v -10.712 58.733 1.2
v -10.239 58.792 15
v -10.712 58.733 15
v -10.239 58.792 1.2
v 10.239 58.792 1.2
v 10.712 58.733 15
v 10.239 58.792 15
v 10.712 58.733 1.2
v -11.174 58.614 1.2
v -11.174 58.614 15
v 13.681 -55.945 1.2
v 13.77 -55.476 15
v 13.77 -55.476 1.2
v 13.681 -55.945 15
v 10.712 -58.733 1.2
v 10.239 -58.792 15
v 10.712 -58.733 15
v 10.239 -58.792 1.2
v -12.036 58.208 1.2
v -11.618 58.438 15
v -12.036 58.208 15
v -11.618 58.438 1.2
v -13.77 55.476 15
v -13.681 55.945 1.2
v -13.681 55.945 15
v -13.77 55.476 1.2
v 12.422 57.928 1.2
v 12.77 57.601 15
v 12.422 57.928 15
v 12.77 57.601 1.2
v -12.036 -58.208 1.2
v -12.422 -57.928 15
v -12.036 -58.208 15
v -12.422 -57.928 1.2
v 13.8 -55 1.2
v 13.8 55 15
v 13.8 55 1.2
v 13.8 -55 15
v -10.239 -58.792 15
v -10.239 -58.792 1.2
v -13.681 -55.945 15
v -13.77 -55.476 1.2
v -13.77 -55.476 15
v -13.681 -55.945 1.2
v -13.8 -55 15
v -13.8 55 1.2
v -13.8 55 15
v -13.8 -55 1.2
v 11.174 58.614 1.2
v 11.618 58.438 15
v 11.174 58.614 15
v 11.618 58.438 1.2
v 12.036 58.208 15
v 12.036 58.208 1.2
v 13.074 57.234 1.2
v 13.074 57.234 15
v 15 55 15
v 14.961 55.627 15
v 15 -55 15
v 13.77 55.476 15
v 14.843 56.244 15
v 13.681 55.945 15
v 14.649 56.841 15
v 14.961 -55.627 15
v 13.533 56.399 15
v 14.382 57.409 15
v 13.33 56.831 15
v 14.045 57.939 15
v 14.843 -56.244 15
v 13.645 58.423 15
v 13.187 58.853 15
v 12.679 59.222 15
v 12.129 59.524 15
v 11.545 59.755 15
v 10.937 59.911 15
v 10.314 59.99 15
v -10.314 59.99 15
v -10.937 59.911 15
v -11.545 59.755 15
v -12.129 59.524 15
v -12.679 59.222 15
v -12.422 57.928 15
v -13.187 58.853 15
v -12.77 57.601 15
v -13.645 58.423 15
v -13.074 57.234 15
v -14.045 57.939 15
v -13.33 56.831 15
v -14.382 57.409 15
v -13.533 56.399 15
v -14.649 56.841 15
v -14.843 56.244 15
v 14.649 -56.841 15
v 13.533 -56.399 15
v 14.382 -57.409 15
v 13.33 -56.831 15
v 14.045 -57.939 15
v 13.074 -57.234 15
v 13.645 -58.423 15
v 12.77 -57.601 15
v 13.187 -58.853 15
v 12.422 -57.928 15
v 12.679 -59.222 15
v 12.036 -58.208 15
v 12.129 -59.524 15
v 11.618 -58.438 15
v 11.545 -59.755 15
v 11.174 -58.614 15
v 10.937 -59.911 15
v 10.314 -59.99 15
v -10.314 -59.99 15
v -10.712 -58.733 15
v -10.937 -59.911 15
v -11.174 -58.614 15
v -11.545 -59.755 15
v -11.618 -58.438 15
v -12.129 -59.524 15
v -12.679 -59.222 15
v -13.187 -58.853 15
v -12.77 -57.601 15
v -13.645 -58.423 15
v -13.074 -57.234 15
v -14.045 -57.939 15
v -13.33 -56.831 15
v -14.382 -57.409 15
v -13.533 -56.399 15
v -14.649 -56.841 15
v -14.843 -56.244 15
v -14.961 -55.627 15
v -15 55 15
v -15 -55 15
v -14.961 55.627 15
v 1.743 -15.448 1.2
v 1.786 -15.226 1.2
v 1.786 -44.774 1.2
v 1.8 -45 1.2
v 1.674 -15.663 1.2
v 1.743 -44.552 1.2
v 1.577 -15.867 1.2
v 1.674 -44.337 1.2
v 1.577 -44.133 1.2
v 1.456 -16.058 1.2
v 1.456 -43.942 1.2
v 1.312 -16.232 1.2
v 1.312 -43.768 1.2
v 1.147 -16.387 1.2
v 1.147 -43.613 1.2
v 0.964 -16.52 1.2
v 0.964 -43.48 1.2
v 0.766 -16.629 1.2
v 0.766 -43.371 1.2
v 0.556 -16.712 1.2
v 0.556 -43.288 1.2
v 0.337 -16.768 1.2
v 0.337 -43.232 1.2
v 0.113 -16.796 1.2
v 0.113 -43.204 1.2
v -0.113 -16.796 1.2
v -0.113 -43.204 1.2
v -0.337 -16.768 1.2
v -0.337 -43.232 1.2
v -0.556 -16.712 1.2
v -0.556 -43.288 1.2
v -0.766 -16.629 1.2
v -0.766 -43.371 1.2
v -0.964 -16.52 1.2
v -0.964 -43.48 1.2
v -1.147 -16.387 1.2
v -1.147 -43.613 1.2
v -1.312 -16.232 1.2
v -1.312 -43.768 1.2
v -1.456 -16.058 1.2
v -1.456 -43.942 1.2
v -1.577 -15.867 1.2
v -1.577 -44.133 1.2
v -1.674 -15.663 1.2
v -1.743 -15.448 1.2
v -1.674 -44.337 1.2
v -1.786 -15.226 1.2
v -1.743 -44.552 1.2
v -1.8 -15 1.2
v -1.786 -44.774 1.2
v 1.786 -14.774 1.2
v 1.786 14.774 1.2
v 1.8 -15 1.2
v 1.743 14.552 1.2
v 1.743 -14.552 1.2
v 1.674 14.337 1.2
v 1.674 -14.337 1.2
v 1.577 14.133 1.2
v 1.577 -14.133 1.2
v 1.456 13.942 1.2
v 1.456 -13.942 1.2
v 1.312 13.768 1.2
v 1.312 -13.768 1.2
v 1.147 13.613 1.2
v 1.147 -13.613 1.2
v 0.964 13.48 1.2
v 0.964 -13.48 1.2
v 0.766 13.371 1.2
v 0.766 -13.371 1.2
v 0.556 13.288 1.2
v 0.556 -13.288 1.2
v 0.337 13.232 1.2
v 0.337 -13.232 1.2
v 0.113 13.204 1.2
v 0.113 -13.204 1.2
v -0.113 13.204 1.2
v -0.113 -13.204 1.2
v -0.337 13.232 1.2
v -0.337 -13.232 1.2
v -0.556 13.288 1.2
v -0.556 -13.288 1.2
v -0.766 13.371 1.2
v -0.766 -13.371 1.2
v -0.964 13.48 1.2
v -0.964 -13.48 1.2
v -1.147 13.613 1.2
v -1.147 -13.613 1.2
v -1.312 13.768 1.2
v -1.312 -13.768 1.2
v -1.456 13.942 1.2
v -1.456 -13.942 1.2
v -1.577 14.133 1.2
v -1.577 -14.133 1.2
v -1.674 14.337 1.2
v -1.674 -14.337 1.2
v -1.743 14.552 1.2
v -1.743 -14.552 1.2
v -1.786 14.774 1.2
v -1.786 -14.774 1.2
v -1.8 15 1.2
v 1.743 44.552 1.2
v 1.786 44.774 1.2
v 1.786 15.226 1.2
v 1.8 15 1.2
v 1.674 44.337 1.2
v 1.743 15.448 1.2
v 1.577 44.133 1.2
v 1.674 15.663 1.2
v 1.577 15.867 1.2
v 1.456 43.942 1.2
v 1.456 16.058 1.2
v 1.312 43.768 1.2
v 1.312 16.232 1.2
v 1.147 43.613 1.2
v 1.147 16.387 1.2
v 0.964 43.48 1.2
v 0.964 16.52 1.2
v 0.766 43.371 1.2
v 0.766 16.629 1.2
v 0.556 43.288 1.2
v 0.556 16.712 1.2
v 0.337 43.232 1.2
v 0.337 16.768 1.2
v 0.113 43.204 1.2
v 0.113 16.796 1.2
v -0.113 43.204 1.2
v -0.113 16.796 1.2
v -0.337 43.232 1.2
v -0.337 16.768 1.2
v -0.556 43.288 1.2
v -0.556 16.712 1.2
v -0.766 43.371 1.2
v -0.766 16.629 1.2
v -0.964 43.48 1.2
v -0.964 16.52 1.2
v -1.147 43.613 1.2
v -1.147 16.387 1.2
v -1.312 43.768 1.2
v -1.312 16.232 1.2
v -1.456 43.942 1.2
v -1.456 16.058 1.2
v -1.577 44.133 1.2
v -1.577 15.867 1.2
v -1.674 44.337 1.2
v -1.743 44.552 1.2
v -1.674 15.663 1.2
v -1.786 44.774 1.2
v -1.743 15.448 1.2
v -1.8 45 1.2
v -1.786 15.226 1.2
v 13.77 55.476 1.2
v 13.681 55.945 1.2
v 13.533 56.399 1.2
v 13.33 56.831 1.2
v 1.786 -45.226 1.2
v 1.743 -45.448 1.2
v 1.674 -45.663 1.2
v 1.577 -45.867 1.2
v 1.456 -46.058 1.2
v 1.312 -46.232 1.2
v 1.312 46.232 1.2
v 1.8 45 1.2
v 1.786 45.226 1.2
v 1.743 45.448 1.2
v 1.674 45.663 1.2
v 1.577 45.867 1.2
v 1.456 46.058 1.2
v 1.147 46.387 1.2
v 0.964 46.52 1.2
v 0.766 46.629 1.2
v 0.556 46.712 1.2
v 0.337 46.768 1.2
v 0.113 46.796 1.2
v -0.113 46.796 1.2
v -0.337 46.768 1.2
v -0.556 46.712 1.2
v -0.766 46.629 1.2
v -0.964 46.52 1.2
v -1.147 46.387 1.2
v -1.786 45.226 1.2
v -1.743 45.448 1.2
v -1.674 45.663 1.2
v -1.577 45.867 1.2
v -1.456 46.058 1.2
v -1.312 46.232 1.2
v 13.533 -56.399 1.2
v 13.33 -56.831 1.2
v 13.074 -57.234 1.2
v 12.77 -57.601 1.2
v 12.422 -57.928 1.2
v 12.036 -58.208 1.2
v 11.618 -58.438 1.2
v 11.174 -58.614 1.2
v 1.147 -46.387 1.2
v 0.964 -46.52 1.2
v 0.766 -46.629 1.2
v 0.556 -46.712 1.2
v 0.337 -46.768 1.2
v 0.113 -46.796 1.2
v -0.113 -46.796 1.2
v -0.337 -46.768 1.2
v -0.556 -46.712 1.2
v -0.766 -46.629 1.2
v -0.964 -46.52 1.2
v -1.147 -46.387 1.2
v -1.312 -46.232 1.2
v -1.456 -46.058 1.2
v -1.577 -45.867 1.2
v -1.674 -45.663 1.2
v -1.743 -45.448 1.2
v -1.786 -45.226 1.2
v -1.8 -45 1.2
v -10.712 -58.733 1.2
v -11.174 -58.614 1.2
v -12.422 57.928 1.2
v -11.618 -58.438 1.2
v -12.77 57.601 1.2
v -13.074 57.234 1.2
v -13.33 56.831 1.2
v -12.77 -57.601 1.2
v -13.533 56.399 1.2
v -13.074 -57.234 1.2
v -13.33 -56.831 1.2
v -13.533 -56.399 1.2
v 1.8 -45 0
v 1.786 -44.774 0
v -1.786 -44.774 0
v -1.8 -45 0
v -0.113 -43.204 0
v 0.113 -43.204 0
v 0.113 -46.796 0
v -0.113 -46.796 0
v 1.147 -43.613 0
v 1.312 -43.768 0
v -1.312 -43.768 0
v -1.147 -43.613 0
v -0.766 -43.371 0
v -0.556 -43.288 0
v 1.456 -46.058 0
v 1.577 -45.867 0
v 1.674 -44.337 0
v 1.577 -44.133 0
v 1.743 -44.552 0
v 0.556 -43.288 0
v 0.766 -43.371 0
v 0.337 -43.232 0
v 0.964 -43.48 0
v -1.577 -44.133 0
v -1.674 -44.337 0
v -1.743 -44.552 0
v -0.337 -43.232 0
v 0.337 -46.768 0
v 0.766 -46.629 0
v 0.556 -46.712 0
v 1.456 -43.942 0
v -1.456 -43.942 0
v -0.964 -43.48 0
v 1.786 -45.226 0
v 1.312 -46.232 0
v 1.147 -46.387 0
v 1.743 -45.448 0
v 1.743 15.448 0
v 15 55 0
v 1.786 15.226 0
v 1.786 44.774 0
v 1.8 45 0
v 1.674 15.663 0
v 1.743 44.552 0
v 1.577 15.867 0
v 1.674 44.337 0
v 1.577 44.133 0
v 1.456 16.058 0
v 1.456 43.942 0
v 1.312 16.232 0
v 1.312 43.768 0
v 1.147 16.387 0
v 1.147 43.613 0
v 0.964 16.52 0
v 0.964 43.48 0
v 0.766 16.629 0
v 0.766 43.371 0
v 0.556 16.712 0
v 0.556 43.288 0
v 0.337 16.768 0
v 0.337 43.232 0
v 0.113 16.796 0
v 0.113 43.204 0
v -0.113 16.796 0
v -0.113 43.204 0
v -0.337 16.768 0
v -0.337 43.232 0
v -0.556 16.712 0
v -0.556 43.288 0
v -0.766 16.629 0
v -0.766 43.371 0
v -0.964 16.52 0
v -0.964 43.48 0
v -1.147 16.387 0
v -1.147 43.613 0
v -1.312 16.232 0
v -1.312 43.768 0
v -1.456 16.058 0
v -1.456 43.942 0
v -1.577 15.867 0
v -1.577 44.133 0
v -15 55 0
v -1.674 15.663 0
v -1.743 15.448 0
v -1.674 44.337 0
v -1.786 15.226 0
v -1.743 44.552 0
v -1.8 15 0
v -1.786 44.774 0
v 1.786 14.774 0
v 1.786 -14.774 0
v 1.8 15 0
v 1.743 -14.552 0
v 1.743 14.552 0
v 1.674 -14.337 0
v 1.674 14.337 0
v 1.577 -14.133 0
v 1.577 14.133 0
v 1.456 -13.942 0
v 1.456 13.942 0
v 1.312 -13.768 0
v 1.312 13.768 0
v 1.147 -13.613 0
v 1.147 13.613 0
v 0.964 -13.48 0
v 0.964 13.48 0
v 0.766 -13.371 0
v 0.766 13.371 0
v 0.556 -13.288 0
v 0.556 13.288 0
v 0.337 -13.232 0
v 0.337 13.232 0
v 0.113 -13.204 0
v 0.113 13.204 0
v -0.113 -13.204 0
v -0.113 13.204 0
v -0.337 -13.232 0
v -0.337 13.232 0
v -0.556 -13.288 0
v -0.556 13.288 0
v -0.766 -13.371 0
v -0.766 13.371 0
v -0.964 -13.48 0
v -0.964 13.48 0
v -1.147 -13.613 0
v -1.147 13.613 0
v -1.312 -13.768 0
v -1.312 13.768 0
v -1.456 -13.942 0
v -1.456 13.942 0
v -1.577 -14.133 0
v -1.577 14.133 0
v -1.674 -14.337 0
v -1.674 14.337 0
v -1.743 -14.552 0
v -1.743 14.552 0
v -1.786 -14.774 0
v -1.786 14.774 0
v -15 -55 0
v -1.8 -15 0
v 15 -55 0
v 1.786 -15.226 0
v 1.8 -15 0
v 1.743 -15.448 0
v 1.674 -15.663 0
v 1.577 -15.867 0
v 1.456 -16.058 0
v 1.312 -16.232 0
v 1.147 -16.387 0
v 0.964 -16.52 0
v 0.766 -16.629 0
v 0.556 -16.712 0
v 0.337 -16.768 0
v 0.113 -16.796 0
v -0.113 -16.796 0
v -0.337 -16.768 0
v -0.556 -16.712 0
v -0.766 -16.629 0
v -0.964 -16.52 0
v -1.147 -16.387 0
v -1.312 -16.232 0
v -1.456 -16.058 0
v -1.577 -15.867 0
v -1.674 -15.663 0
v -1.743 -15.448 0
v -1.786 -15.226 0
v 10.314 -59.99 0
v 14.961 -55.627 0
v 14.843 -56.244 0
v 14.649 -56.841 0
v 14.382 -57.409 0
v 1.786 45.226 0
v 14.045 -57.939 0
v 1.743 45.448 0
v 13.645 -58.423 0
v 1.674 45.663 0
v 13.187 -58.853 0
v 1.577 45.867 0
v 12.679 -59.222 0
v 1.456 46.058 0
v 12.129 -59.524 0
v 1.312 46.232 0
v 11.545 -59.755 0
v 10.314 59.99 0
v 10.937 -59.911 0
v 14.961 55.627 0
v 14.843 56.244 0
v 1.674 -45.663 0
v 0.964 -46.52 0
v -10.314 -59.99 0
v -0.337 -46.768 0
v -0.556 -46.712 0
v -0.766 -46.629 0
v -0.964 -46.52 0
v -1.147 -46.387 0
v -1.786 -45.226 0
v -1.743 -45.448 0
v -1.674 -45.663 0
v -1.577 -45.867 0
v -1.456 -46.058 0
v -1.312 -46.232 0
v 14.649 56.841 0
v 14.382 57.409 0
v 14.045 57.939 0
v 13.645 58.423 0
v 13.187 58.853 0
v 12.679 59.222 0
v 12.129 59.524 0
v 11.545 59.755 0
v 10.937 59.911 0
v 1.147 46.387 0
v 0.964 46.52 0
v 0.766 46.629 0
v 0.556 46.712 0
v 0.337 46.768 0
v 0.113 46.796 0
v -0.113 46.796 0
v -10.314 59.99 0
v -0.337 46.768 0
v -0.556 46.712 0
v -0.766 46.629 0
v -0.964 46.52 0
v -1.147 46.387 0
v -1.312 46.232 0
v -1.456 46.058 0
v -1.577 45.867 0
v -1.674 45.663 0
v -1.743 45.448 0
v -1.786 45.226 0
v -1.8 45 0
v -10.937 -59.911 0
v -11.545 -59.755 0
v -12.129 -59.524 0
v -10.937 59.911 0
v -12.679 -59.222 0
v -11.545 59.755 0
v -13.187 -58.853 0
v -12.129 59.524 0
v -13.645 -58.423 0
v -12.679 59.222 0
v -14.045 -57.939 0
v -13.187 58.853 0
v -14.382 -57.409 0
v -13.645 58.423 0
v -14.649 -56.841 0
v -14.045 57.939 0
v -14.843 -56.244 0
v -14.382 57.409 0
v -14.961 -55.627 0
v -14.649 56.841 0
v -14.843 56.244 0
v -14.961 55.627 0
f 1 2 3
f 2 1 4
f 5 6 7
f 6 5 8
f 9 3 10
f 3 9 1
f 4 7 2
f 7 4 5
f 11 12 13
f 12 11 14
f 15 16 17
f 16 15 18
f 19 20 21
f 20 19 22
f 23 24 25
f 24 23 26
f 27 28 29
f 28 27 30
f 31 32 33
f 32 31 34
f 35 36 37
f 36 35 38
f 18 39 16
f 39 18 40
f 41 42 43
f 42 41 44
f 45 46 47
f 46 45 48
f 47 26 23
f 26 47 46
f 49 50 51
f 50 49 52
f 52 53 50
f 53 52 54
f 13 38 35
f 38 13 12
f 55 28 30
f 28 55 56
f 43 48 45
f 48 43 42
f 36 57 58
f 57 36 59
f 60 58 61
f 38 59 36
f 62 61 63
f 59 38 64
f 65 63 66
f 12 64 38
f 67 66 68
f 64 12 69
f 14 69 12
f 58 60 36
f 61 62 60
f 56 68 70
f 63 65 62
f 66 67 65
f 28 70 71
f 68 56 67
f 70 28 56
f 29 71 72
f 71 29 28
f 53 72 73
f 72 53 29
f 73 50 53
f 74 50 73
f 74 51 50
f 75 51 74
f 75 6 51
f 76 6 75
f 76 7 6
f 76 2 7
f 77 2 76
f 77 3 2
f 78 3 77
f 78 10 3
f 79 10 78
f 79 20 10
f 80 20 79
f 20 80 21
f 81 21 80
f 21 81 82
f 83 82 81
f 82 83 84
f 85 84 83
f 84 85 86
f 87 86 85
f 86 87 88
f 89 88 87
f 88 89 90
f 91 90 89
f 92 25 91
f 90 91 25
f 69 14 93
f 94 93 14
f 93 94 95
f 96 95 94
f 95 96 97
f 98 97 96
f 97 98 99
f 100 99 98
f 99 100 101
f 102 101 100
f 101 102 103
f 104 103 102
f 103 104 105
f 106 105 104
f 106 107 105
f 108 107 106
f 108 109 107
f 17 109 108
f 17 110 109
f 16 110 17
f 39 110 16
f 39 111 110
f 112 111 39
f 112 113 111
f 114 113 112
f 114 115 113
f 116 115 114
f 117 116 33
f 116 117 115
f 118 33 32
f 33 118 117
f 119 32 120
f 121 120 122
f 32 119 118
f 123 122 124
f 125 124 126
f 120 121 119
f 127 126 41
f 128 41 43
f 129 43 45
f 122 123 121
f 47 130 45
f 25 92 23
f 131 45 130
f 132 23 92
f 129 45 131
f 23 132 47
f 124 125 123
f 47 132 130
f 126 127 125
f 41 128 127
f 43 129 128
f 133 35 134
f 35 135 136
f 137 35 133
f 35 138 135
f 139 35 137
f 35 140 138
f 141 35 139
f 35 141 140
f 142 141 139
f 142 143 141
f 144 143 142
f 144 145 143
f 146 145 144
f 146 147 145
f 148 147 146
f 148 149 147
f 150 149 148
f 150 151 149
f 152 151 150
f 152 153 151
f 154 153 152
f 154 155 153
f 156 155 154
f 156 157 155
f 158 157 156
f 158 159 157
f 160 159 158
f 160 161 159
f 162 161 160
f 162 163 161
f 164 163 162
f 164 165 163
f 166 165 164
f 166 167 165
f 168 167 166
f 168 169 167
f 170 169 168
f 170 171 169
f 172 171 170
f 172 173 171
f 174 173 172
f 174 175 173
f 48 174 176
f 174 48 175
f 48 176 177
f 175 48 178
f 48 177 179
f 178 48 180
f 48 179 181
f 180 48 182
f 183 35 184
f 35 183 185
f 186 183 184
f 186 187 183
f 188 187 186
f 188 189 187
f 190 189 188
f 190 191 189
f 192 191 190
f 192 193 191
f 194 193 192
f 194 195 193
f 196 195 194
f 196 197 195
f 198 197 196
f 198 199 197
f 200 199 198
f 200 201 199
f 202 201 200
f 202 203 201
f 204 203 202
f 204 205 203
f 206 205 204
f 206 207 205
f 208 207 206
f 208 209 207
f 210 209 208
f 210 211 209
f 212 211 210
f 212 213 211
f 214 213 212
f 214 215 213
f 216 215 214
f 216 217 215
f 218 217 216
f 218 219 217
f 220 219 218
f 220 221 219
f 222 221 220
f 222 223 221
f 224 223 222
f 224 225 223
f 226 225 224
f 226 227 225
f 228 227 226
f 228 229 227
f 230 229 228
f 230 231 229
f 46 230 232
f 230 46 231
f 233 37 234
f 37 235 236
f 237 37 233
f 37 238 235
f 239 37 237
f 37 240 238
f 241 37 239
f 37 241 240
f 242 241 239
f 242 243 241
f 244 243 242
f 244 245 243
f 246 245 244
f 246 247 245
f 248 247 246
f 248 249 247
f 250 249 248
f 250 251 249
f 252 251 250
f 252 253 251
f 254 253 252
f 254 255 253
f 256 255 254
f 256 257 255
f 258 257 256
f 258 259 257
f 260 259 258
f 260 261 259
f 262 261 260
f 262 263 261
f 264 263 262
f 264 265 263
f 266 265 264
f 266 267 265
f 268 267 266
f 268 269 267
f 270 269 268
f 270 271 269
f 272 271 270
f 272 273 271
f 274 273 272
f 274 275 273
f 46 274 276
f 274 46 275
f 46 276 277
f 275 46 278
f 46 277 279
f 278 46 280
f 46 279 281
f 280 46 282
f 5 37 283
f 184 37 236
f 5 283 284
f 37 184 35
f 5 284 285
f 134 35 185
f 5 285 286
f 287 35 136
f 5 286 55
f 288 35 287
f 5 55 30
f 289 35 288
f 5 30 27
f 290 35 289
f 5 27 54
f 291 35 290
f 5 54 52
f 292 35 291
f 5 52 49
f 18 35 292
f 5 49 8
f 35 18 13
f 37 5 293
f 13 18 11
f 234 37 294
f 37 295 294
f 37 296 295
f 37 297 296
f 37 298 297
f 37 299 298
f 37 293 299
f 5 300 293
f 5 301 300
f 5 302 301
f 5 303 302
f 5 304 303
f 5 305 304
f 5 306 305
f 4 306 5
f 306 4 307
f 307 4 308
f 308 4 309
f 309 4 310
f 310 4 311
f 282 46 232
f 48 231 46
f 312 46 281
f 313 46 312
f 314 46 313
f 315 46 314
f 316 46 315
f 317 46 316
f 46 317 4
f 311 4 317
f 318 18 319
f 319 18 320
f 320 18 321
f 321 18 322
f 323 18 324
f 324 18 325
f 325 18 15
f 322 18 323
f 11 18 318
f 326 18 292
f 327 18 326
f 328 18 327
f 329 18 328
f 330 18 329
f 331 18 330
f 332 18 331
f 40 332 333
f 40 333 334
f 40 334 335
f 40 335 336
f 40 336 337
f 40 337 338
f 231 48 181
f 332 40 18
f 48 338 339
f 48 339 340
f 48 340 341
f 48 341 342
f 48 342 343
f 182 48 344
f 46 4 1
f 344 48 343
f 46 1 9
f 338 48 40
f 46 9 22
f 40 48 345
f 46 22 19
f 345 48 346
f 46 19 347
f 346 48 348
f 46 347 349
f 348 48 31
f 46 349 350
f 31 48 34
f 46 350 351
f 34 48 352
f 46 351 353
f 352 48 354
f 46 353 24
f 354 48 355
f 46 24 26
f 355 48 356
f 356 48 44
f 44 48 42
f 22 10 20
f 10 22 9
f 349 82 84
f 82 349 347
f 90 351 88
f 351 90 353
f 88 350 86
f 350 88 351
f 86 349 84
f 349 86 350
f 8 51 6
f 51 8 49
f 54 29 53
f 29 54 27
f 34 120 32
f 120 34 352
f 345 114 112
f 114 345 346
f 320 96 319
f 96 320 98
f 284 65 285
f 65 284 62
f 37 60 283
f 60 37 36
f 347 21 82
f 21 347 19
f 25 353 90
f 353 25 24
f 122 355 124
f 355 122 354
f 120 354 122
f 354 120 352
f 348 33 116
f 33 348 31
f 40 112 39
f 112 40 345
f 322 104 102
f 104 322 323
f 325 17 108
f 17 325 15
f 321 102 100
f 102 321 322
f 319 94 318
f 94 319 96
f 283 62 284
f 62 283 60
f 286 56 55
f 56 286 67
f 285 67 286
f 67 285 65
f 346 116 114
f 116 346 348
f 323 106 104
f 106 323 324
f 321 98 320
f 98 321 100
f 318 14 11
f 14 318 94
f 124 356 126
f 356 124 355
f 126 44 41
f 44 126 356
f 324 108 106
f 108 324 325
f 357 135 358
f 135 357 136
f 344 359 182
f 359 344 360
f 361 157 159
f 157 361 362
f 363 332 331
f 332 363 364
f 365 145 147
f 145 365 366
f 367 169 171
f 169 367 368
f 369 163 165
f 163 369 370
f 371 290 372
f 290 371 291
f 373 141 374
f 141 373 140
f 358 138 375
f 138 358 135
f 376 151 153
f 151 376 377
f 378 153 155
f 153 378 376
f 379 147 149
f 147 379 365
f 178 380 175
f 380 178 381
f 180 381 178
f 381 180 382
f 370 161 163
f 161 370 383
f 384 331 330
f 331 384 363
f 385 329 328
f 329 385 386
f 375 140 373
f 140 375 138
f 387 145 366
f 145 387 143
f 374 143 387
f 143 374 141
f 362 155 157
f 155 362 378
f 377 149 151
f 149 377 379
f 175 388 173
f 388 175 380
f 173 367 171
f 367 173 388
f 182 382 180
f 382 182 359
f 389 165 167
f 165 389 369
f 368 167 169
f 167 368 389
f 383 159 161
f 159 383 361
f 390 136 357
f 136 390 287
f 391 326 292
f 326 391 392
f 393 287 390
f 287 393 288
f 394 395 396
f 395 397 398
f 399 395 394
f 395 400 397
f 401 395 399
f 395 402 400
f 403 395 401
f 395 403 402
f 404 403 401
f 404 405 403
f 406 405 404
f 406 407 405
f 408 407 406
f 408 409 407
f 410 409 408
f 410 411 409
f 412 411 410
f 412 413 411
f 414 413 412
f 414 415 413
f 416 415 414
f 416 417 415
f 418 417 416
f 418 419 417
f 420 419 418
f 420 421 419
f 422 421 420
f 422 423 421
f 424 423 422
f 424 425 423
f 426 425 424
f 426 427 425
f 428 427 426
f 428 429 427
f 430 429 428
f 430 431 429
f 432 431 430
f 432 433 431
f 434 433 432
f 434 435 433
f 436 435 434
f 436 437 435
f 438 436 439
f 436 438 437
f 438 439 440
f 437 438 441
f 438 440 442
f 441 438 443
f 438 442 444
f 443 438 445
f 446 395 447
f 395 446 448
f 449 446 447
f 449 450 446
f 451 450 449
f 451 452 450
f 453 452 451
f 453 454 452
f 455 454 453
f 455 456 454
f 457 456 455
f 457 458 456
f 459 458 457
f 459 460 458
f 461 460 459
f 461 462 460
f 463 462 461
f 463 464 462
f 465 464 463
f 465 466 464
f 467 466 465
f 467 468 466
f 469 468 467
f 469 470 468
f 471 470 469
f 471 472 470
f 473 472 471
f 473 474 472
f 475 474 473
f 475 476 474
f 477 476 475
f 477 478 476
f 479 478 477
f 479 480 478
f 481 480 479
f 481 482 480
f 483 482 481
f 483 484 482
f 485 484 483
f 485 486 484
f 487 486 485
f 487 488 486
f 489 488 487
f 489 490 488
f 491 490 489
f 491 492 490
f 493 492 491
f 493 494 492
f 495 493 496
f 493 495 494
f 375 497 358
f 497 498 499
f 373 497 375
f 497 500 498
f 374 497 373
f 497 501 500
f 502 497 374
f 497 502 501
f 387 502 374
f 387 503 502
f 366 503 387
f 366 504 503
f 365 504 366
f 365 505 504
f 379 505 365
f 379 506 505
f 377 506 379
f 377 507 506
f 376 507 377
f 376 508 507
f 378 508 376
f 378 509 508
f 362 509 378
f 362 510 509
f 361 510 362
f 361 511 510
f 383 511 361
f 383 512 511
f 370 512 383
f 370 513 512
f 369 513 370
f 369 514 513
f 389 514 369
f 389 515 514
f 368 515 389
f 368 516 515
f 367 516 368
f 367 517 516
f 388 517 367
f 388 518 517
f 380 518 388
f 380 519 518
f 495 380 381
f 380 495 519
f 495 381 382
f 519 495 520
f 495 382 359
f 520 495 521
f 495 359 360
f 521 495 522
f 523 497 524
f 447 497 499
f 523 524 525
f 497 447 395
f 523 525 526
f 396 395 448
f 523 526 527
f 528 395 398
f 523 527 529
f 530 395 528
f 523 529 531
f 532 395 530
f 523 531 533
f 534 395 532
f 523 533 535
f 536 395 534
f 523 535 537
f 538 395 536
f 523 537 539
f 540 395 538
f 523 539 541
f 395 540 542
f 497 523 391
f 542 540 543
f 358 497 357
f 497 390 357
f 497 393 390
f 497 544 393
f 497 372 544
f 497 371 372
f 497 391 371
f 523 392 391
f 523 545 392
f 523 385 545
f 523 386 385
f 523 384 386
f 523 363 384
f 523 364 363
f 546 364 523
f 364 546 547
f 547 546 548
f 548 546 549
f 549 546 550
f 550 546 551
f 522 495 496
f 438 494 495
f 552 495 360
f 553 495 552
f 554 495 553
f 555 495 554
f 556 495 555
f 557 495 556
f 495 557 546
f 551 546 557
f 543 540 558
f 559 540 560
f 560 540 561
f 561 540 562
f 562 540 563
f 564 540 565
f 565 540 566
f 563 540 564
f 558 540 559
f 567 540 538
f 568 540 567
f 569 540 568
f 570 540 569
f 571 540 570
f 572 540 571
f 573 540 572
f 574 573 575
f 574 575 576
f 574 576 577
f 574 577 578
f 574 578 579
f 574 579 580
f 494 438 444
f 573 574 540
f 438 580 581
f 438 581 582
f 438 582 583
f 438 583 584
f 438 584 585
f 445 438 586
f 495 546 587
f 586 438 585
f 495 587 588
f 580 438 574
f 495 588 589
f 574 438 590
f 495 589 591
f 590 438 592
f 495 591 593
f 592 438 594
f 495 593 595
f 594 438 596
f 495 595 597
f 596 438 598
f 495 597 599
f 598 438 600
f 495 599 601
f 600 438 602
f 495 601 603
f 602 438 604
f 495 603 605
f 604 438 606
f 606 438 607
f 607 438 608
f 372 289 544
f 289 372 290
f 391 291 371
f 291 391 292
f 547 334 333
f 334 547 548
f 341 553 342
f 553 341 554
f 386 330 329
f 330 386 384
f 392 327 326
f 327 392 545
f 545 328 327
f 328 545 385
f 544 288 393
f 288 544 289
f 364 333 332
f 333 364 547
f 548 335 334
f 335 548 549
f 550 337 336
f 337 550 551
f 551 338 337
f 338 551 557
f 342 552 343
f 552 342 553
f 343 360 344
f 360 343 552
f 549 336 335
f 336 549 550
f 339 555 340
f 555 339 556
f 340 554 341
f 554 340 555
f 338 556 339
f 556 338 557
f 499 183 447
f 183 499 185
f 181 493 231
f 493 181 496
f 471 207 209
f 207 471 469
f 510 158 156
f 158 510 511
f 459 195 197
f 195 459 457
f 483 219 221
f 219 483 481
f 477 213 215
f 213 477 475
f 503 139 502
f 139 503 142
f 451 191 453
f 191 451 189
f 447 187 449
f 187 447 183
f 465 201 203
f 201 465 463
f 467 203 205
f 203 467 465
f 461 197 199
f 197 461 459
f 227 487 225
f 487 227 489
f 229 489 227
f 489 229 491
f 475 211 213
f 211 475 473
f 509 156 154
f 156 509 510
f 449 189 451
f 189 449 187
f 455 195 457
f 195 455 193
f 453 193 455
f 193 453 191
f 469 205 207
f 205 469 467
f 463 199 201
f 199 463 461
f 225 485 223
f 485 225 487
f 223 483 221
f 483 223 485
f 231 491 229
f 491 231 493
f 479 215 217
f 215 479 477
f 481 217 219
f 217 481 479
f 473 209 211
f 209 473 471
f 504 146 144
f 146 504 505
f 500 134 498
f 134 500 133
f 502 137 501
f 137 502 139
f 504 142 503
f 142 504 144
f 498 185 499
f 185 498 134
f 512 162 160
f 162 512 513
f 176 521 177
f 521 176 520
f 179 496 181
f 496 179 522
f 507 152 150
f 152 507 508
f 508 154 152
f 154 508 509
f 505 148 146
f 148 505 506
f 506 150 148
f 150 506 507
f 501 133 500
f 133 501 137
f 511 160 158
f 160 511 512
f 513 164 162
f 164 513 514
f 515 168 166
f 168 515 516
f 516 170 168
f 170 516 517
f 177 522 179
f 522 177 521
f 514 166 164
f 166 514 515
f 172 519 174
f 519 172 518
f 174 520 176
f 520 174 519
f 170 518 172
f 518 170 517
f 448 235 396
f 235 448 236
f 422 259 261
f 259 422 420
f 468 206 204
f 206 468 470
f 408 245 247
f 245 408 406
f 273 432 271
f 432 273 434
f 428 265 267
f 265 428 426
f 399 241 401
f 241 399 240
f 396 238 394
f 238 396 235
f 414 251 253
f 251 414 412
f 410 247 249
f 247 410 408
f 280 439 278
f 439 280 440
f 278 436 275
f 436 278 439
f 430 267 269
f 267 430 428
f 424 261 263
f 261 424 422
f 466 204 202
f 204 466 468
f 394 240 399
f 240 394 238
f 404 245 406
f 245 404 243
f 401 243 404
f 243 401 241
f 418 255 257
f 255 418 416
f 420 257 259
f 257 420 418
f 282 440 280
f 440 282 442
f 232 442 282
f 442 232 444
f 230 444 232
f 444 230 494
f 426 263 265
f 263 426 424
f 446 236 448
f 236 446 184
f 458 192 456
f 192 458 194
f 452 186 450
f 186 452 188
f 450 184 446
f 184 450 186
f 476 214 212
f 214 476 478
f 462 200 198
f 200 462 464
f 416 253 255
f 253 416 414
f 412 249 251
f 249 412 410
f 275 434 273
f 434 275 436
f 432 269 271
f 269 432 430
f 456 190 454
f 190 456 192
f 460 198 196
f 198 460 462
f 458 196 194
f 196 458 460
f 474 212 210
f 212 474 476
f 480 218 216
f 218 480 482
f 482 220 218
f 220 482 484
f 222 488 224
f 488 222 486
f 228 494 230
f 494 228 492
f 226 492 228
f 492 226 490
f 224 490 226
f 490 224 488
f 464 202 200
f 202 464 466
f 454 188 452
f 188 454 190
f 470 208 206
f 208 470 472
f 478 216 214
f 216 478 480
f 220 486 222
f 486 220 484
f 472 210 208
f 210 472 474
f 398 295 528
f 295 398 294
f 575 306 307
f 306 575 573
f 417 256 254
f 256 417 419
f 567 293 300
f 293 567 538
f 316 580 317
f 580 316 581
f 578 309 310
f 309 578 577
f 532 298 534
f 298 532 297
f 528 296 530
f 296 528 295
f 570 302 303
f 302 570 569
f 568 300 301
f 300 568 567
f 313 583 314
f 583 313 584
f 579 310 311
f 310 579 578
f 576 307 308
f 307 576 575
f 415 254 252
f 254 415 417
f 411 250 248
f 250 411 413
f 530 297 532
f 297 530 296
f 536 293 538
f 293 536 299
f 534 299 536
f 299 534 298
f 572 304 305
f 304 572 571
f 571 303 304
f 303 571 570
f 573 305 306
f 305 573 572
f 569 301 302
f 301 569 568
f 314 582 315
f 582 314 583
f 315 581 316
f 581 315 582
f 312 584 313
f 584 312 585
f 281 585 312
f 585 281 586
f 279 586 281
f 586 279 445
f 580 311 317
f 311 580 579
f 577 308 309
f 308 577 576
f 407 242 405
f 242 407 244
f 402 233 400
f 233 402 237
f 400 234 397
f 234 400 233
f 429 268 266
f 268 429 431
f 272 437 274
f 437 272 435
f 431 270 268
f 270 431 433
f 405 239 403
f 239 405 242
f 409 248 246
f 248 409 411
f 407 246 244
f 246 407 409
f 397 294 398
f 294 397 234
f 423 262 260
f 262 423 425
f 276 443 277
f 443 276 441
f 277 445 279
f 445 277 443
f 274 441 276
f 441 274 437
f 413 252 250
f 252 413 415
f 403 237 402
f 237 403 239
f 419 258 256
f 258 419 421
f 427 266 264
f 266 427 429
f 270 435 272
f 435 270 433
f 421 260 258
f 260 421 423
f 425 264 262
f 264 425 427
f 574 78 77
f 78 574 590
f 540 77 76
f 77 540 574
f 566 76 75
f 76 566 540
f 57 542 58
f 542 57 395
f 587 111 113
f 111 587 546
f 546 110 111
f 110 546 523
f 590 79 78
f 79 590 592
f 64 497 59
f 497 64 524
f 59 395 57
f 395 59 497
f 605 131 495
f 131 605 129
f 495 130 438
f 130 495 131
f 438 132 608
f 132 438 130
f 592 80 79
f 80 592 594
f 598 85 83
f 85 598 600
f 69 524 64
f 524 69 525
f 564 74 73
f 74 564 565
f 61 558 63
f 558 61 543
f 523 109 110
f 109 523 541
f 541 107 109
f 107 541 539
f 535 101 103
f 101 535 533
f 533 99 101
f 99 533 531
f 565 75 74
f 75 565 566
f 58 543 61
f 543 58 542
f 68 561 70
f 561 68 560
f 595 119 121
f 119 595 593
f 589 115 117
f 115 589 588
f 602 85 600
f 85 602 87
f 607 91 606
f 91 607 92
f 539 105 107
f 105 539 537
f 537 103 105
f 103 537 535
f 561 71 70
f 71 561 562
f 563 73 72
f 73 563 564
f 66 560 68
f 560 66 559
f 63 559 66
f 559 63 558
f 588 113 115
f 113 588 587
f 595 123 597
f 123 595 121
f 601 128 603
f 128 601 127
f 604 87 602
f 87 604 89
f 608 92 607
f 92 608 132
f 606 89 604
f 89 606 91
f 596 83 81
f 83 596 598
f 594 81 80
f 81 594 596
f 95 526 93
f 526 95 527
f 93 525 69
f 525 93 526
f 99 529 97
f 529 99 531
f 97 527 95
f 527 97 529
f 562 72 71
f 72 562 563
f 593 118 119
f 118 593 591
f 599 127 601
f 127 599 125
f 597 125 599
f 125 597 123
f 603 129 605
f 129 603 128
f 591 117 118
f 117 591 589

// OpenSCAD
$fn = 50;


difference() {
	union() {
		hull() {
			translate(v = [-10.0000000000, 55.0000000000, 0]) {
				cylinder(h = 15, r = 5);
			}
			translate(v = [10.0000000000, 55.0000000000, 0]) {
				cylinder(h = 15, r = 5);
			}
			translate(v = [-10.0000000000, -55.0000000000, 0]) {
				cylinder(h = 15, r = 5);
			}
			translate(v = [10.0000000000, -55.0000000000, 0]) {
				cylinder(h = 15, r = 5);
			}
		}
	}
	union() {
		translate(v = [0, 0, 1.2000000000]) {
			hull() {
				translate(v = [-10.0000000000, 55.0000000000, 0]) {
					cylinder(h = 13.8000000000, r = 3.8000000000);
				}
				translate(v = [10.0000000000, 55.0000000000, 0]) {
					cylinder(h = 13.8000000000, r = 3.8000000000);
				}
				translate(v = [-10.0000000000, -55.0000000000, 0]) {
					cylinder(h = 13.8000000000, r = 3.8000000000);
				}
				translate(v = [10.0000000000, -55.0000000000, 0]) {
					cylinder(h = 13.8000000000, r = 3.8000000000);
				}
			}
		}
		#translate(v = [0.0000000000, -45.0000000000, 0]) {
			cylinder(h = 1.2000000000, r = 1.8000000000);
		}
		#translate(v = [0.0000000000, -15.0000000000, 0]) {
			cylinder(h = 1.2000000000, r = 1.8000000000);
		}
		#translate(v = [0.0000000000, 15.0000000000, 0]) {
			cylinder(h = 1.2000000000, r = 1.8000000000);
		}
		#translate(v = [0.0000000000, 45.0000000000, 0]) {
			cylinder(h = 1.2000000000, r = 1.8000000000);
		}
	}
}
